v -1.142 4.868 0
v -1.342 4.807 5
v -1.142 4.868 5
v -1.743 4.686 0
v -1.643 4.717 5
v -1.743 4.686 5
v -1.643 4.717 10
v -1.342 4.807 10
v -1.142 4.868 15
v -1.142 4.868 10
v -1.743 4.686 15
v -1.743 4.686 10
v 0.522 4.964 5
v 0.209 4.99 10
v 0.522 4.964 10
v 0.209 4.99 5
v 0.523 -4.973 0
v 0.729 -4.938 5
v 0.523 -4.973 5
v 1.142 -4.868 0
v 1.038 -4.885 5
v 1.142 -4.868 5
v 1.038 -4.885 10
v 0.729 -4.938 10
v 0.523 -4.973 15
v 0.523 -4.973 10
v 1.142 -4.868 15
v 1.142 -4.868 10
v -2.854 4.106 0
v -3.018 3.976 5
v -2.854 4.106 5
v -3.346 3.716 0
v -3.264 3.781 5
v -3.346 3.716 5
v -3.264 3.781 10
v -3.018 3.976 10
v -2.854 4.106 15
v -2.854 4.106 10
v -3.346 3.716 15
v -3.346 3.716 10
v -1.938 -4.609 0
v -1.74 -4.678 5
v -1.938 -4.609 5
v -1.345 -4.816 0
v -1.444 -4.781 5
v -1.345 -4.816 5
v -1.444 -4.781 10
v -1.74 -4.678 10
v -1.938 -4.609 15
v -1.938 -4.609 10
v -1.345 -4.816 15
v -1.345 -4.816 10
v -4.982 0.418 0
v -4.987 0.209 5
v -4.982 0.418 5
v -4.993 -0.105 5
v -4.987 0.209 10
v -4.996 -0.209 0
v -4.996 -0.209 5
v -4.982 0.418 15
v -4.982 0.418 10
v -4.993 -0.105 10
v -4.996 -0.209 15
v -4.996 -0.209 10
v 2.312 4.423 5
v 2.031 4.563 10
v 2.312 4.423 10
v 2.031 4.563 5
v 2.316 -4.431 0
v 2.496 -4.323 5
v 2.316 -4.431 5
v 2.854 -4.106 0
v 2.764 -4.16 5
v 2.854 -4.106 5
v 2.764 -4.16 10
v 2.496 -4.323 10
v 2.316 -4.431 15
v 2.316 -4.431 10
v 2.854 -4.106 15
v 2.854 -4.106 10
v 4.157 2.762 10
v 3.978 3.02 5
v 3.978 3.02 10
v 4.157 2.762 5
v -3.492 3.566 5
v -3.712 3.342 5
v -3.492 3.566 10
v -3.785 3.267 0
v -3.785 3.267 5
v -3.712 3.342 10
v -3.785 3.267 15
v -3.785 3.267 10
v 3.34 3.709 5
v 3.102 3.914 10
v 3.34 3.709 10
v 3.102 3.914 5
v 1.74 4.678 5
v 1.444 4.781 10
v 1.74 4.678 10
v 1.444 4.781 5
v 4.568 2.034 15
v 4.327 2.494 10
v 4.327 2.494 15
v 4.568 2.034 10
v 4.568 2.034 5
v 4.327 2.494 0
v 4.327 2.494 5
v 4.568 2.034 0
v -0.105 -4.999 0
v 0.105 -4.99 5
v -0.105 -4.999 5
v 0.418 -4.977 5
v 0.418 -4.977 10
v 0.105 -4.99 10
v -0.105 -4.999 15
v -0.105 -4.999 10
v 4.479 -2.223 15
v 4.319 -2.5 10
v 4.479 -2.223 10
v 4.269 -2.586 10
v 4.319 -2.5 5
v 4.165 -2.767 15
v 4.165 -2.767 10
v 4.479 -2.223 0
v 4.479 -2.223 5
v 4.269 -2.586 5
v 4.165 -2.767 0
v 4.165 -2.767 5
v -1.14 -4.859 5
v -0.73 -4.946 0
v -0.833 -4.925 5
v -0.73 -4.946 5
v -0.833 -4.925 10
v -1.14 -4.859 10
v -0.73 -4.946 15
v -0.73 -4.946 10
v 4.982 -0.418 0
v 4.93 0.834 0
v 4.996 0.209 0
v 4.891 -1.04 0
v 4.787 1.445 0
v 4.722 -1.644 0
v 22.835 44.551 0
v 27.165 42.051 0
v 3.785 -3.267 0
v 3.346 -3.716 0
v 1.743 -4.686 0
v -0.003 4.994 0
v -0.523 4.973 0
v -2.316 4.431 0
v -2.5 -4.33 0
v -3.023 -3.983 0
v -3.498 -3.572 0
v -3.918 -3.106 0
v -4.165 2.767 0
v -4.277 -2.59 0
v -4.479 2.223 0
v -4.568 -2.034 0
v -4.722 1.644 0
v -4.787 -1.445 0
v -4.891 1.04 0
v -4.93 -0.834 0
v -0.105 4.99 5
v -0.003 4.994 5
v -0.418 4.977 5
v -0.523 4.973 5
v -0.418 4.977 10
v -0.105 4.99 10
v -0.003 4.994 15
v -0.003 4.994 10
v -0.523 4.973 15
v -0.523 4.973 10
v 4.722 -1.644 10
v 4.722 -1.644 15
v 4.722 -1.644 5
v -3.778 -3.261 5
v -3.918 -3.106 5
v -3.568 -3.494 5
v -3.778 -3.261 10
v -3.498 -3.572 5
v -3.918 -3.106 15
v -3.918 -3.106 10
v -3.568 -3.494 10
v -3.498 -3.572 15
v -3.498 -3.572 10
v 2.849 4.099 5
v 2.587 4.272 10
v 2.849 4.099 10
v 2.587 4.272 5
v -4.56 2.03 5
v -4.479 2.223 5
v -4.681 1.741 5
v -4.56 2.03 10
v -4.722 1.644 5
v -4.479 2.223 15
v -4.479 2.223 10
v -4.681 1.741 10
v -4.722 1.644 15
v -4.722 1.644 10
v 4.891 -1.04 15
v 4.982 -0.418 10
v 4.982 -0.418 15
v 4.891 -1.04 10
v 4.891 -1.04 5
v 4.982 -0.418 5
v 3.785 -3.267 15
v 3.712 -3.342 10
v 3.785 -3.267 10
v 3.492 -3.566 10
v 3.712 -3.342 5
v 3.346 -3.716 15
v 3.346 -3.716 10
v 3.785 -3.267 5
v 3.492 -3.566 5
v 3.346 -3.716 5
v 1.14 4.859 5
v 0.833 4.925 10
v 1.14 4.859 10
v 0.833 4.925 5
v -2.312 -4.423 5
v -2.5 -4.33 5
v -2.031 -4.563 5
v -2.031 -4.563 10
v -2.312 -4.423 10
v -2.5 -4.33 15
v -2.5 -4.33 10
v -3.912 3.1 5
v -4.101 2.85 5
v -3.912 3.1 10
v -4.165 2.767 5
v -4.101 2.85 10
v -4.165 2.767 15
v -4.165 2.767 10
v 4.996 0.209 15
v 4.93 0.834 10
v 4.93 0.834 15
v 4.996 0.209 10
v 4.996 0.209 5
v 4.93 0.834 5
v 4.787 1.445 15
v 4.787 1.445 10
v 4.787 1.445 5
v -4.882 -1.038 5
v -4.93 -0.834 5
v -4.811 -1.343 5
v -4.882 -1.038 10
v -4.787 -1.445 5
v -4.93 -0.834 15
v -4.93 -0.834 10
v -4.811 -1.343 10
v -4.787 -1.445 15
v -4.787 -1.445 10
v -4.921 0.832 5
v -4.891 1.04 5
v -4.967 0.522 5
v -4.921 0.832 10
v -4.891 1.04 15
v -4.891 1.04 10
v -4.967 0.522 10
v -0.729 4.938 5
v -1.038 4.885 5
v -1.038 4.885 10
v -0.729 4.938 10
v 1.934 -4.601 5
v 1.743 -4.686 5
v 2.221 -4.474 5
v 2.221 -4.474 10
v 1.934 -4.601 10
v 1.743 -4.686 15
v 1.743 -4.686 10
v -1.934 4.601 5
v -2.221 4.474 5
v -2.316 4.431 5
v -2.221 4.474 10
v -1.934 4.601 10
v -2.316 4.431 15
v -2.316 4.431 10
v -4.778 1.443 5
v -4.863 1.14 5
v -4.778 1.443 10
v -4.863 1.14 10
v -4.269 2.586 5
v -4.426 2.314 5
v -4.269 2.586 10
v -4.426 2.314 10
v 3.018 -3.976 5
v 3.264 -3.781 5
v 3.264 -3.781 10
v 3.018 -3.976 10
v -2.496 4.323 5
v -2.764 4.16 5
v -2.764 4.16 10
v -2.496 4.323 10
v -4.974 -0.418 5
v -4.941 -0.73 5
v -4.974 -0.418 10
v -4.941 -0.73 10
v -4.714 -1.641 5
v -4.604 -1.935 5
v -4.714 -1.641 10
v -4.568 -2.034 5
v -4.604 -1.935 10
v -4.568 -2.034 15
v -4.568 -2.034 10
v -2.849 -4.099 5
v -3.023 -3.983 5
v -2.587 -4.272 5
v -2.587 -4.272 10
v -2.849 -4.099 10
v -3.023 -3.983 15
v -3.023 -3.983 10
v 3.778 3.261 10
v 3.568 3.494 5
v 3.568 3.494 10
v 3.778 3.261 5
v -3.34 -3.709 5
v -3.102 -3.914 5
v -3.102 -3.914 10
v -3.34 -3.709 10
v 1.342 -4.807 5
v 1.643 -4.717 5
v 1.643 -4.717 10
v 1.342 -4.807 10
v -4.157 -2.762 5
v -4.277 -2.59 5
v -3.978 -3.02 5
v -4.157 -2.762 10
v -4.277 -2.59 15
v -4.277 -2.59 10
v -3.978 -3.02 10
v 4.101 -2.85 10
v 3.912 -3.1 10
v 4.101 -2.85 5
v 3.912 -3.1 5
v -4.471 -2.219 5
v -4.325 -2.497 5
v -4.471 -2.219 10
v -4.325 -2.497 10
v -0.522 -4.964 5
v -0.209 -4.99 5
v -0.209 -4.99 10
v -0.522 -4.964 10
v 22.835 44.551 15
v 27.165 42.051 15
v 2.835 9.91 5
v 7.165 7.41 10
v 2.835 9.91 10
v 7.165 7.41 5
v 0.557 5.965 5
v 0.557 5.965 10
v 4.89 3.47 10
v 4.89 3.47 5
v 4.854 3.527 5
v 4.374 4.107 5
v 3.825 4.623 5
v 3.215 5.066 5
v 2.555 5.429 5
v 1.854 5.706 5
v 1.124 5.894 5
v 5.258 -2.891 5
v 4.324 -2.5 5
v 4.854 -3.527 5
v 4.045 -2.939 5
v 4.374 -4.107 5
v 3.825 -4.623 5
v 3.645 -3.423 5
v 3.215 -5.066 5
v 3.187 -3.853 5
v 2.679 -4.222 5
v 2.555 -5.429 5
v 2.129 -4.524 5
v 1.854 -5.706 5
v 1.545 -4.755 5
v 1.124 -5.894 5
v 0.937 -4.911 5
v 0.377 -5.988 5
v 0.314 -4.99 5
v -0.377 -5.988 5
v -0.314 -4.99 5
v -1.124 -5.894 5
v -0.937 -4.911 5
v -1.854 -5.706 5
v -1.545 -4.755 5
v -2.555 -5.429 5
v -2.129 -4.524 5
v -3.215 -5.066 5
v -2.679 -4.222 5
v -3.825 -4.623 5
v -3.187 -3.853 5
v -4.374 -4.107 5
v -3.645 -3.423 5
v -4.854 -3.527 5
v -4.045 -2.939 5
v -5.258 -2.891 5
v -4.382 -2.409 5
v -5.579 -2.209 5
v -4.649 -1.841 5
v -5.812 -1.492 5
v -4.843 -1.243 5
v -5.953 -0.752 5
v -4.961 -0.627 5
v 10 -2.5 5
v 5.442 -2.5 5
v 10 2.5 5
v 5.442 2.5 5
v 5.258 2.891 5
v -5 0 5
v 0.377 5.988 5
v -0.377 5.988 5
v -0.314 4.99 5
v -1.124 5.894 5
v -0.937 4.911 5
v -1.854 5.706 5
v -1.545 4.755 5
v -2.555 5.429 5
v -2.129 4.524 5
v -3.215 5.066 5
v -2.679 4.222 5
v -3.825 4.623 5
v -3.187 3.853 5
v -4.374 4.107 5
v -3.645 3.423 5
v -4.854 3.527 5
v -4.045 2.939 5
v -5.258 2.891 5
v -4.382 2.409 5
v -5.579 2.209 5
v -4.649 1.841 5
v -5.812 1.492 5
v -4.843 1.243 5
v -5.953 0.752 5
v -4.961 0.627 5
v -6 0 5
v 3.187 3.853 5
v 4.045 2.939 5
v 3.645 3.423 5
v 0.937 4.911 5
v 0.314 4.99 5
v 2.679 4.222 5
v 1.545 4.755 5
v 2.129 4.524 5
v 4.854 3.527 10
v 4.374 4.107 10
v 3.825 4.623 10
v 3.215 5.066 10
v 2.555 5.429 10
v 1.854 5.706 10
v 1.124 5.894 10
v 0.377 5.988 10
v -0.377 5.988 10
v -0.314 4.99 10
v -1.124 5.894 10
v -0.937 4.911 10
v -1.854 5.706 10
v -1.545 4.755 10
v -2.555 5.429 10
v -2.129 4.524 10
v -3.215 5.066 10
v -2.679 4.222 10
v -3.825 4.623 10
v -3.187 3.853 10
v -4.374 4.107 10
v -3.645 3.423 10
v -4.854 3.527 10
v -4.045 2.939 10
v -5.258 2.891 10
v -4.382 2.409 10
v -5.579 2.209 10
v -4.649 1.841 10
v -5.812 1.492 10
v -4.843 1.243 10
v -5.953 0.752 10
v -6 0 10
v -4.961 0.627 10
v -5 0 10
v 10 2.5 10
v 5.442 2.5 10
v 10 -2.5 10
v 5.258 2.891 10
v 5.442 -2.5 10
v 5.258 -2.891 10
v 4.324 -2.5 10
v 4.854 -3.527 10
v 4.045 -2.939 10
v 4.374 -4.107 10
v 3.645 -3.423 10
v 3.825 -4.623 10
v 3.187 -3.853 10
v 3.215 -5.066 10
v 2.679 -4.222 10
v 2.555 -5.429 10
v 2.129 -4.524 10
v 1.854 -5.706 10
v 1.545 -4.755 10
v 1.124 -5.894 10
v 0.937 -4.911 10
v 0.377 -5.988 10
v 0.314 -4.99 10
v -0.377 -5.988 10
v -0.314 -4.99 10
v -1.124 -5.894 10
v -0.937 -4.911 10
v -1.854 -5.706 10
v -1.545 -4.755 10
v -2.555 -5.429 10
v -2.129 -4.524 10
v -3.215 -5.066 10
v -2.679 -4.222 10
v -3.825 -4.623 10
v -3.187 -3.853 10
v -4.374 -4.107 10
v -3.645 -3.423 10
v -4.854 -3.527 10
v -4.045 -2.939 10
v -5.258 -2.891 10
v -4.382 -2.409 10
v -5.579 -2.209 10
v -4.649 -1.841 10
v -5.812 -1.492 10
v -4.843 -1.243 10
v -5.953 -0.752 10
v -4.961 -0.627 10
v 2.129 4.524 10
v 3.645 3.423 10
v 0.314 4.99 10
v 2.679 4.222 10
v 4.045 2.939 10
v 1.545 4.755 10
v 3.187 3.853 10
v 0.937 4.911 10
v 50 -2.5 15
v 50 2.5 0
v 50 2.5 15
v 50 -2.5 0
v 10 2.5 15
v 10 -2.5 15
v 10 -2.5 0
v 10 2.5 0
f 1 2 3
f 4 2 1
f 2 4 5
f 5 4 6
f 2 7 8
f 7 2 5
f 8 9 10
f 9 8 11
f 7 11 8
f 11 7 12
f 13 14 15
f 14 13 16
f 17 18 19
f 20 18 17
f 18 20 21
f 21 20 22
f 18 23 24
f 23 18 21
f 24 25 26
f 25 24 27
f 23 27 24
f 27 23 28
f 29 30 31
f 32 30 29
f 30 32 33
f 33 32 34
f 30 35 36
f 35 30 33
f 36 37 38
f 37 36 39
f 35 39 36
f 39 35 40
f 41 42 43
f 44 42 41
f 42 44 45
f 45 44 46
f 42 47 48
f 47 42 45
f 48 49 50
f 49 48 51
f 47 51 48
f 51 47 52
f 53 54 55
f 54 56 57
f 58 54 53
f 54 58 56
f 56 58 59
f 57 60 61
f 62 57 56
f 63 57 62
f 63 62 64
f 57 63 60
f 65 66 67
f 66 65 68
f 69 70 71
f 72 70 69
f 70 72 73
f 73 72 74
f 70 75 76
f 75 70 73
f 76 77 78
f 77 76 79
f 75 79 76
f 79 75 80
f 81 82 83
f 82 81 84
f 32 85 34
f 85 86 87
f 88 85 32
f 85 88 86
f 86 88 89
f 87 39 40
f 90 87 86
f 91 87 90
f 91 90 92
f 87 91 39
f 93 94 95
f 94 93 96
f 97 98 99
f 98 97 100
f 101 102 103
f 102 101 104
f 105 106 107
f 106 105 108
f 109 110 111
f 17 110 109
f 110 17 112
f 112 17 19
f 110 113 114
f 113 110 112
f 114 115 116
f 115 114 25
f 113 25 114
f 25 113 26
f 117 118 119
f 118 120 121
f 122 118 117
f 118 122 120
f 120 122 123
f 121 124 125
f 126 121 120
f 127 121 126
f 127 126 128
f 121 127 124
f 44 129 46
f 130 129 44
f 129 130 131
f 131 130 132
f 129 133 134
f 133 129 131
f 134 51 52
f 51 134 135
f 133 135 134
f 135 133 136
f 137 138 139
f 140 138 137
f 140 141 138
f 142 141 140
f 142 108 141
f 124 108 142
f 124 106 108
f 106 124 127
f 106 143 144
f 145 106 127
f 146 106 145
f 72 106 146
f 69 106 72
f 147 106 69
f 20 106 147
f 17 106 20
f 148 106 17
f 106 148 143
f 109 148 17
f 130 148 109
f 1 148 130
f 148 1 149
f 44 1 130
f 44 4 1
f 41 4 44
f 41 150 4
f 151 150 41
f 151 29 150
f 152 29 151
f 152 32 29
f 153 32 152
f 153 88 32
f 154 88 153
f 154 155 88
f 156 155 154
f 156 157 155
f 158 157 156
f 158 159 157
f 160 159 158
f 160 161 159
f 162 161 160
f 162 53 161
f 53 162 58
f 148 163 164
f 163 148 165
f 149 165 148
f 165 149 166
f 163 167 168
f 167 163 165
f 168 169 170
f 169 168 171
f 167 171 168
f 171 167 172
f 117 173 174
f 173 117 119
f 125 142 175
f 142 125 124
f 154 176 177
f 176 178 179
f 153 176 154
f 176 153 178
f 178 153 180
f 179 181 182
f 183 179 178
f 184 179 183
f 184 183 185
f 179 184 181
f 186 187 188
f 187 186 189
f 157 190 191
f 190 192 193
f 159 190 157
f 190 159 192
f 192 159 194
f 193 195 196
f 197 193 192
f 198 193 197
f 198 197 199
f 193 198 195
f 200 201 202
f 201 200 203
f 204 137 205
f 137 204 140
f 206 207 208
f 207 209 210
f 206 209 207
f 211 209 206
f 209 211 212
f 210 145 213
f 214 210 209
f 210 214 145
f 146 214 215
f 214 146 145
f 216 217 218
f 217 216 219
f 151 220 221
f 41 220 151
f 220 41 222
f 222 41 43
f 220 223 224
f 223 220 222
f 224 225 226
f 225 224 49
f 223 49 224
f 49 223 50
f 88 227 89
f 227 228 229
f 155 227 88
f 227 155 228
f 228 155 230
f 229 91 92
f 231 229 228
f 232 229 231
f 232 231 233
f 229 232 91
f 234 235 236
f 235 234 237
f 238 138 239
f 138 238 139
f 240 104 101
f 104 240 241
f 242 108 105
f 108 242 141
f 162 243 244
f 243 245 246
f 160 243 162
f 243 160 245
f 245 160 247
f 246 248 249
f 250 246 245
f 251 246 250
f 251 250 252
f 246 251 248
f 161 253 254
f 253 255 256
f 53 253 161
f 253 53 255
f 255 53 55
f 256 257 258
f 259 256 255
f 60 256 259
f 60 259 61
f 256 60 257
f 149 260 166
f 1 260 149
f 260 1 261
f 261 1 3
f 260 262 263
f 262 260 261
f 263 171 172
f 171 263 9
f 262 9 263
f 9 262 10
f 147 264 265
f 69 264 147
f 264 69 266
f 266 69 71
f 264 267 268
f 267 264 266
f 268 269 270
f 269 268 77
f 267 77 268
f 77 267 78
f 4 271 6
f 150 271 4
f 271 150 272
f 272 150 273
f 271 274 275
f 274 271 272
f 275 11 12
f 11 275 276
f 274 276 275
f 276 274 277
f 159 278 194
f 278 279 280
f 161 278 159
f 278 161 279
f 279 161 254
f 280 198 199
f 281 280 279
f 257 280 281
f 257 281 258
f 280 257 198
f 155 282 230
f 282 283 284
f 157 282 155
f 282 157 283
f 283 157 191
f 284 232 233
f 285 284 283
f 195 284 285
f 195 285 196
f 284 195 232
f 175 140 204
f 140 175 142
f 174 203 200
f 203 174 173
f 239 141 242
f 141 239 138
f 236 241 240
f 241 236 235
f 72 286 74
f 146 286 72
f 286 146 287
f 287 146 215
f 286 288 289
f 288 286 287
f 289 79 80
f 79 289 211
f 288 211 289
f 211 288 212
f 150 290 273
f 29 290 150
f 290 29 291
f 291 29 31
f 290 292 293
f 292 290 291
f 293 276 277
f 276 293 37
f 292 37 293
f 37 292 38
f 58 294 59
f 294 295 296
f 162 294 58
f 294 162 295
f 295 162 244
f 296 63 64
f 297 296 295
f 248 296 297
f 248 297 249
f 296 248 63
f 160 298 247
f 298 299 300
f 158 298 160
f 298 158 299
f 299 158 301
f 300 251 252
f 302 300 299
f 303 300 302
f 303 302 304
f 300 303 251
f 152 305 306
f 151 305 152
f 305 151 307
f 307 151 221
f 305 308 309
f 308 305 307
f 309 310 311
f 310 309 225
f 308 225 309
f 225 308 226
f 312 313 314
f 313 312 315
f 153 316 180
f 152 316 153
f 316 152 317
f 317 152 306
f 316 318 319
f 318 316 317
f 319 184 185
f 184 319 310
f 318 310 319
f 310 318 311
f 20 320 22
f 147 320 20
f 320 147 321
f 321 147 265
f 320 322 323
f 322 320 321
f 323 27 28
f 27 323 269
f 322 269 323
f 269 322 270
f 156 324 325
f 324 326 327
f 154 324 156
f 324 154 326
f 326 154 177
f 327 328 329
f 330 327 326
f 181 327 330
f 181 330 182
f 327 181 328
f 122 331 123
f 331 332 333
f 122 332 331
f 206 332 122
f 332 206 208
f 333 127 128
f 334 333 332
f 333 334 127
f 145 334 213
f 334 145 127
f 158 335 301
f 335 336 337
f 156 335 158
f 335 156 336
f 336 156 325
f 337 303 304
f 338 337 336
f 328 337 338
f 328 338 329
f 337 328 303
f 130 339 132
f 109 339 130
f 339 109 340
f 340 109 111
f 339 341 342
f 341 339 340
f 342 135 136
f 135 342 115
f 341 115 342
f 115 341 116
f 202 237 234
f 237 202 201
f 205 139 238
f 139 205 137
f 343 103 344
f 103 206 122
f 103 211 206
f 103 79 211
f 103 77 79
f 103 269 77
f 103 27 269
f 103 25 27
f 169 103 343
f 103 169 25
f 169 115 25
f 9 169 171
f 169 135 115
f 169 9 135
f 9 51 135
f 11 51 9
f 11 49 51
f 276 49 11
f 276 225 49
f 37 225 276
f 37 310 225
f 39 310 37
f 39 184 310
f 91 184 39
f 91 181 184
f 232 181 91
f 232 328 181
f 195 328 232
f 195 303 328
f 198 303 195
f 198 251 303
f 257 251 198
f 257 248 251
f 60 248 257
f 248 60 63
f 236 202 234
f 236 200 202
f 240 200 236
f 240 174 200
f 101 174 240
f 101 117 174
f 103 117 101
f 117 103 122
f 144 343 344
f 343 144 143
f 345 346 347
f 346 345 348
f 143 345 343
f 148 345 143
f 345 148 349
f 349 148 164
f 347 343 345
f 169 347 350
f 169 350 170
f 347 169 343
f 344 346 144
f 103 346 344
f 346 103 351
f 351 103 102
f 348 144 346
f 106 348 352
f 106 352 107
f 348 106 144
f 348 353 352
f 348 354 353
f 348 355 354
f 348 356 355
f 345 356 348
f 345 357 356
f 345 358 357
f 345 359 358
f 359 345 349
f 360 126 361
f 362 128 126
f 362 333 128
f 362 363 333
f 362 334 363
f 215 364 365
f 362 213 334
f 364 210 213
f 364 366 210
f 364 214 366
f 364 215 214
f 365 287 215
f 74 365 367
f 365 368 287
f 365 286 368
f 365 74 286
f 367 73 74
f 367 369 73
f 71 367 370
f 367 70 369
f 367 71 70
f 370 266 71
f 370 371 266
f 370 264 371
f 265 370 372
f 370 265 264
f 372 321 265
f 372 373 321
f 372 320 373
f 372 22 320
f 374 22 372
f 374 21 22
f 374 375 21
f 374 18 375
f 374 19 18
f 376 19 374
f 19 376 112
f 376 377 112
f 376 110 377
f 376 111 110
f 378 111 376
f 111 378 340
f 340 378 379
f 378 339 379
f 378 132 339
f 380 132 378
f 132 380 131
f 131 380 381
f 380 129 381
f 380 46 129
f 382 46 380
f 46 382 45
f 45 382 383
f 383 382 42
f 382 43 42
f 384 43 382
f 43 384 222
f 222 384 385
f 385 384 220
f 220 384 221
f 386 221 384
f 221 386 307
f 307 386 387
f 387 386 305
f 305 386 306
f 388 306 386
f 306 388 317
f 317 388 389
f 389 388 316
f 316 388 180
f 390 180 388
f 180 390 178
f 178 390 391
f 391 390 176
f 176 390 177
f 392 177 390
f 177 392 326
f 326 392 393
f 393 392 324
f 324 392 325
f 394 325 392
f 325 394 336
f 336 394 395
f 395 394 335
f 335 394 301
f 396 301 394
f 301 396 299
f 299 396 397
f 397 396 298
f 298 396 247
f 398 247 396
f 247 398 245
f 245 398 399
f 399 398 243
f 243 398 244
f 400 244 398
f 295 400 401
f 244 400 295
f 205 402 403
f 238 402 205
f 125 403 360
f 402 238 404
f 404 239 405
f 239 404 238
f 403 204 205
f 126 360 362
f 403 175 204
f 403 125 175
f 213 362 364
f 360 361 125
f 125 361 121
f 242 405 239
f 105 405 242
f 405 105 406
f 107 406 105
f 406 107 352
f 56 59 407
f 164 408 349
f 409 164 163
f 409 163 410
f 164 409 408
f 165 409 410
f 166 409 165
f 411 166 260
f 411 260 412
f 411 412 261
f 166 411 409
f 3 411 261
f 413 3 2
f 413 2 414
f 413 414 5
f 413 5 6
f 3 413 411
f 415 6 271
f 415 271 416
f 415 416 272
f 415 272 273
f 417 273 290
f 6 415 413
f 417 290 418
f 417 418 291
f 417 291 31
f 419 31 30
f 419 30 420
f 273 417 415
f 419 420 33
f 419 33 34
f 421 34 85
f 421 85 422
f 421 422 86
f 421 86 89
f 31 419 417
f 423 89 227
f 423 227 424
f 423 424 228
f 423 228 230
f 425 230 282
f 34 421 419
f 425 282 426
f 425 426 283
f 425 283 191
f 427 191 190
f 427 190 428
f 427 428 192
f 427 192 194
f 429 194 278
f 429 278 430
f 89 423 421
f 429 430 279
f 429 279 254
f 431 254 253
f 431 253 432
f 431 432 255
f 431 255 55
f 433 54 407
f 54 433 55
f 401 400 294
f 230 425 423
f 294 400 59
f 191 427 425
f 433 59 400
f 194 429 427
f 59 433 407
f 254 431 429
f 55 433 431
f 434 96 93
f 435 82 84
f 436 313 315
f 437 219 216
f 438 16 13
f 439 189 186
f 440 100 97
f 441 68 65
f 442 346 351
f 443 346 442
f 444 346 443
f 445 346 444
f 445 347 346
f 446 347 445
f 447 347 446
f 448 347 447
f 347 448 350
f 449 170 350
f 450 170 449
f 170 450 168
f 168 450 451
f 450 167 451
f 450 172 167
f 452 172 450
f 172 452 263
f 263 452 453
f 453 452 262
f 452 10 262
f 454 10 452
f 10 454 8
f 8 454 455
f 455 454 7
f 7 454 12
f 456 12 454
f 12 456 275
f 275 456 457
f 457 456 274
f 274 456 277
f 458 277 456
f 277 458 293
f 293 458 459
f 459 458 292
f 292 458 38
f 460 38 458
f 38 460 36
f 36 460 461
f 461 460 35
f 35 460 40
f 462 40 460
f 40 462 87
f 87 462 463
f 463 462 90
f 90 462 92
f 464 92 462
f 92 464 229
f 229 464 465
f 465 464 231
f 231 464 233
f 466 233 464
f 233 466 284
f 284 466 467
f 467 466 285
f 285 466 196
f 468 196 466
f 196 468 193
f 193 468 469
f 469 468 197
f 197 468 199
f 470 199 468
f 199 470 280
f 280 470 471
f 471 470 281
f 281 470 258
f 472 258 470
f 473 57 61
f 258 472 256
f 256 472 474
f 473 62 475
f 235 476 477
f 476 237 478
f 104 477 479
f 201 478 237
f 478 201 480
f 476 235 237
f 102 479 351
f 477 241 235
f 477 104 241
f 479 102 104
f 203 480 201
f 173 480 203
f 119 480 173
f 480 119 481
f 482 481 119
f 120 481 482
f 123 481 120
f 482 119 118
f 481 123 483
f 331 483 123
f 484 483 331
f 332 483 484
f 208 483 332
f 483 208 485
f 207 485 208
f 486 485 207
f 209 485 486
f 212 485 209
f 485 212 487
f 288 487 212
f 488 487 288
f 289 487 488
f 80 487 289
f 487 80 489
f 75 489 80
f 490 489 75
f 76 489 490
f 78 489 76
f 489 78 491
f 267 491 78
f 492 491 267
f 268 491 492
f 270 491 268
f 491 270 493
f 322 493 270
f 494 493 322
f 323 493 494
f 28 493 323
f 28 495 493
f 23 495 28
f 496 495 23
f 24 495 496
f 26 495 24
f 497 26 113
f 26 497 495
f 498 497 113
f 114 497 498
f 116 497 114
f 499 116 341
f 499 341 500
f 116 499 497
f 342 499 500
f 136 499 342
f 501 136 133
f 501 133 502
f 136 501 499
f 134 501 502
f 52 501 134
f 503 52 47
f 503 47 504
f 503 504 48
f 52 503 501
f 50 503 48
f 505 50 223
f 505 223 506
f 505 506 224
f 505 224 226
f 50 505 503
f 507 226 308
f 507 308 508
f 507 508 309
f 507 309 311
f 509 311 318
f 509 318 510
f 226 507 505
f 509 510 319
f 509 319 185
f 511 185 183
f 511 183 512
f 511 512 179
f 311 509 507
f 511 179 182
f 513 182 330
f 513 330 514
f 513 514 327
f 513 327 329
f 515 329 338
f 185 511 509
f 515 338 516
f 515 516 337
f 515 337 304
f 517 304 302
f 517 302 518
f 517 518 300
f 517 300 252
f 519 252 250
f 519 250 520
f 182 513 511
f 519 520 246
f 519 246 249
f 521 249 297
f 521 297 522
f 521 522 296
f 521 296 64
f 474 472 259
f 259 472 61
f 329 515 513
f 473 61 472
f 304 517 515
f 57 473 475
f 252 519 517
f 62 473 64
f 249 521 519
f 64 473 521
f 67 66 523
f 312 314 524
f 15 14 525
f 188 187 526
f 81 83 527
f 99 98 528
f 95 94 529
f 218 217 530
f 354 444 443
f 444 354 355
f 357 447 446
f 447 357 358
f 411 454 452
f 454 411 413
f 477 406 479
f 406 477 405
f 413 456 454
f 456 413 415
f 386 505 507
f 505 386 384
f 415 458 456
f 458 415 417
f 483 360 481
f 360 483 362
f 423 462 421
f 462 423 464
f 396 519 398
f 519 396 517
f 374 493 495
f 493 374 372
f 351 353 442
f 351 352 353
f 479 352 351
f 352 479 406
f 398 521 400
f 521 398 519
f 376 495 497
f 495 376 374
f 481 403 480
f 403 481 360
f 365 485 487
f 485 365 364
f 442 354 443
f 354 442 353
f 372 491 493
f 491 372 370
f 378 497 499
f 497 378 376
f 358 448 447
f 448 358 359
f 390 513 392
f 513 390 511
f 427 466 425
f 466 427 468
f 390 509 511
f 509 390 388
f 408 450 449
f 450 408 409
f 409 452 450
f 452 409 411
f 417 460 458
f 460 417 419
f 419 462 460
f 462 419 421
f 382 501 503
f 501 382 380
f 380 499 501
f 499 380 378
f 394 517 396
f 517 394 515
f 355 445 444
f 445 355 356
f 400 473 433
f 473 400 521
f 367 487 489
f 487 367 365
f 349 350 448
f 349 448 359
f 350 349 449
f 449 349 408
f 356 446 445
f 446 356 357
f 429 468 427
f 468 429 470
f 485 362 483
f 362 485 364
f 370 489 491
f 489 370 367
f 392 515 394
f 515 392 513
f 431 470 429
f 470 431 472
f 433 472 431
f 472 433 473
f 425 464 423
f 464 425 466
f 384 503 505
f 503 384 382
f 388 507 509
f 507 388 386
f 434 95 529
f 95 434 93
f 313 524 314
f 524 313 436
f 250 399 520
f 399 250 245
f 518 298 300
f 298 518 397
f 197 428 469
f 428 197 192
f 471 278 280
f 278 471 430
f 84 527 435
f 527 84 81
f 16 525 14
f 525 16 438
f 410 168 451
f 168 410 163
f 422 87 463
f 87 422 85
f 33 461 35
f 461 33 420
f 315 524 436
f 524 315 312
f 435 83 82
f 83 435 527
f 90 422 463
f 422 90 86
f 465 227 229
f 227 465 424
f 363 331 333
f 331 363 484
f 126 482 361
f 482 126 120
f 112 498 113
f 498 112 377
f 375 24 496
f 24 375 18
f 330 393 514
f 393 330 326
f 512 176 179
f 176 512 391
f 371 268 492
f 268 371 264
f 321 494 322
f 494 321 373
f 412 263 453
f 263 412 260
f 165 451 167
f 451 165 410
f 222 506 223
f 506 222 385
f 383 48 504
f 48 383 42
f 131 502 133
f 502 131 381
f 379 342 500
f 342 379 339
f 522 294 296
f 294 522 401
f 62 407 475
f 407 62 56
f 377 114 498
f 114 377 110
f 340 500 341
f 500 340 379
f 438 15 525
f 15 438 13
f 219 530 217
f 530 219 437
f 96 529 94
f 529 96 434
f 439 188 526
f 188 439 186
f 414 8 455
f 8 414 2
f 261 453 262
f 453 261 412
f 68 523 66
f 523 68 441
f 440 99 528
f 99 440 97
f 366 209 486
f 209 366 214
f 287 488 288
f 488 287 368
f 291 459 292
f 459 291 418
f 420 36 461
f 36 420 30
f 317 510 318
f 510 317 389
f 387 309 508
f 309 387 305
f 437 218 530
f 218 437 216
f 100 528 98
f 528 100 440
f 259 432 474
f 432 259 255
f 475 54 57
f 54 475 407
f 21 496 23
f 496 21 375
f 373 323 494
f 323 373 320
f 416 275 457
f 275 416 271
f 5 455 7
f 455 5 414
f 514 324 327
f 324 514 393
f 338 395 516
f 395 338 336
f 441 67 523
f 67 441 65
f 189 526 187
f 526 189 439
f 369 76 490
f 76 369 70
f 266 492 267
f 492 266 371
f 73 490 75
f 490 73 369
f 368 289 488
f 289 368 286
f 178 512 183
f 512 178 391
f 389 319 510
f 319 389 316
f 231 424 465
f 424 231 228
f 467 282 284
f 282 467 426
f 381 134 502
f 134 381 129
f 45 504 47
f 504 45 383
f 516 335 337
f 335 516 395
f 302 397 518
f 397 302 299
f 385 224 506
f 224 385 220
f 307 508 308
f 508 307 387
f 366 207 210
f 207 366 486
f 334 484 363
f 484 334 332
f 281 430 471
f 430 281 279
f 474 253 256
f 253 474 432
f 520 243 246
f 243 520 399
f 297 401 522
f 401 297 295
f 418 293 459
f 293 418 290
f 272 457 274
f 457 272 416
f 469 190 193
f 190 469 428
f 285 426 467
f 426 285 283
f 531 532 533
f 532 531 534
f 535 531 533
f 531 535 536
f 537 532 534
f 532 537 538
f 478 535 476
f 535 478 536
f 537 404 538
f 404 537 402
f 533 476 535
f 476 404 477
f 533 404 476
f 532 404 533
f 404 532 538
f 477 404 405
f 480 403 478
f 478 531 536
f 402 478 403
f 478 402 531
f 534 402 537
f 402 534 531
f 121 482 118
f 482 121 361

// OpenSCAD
$fn=50;
d1=10;
d2=12;
zz=15;

armlen=40;

module arm1() {
  cylinder(zz,d=d1);
  translate([d1,-2.5,0]) cube([armlen,5,zz]);
  translate([3,-2.5,0]) cube([armlen,5,zz/3]);
  translate([3,-2.5,zz*2/3]) cube([armlen,5,zz/3]);
}

module arm2() {
  #translate([0,0,zz/3]) difference() {
    cylinder(zz/3,d=d2);
    cylinder(zz/3,d=d1);
  }
  translate([d1,-2.5,0]) cube([armlen,5,zz]);
  #translate([3,-2.5,zz/3]) cube([armlen,5,zz/3]);

}

module joint() {
  rotate([0,0,60]) arm1();
  arm2();
}

joint();
